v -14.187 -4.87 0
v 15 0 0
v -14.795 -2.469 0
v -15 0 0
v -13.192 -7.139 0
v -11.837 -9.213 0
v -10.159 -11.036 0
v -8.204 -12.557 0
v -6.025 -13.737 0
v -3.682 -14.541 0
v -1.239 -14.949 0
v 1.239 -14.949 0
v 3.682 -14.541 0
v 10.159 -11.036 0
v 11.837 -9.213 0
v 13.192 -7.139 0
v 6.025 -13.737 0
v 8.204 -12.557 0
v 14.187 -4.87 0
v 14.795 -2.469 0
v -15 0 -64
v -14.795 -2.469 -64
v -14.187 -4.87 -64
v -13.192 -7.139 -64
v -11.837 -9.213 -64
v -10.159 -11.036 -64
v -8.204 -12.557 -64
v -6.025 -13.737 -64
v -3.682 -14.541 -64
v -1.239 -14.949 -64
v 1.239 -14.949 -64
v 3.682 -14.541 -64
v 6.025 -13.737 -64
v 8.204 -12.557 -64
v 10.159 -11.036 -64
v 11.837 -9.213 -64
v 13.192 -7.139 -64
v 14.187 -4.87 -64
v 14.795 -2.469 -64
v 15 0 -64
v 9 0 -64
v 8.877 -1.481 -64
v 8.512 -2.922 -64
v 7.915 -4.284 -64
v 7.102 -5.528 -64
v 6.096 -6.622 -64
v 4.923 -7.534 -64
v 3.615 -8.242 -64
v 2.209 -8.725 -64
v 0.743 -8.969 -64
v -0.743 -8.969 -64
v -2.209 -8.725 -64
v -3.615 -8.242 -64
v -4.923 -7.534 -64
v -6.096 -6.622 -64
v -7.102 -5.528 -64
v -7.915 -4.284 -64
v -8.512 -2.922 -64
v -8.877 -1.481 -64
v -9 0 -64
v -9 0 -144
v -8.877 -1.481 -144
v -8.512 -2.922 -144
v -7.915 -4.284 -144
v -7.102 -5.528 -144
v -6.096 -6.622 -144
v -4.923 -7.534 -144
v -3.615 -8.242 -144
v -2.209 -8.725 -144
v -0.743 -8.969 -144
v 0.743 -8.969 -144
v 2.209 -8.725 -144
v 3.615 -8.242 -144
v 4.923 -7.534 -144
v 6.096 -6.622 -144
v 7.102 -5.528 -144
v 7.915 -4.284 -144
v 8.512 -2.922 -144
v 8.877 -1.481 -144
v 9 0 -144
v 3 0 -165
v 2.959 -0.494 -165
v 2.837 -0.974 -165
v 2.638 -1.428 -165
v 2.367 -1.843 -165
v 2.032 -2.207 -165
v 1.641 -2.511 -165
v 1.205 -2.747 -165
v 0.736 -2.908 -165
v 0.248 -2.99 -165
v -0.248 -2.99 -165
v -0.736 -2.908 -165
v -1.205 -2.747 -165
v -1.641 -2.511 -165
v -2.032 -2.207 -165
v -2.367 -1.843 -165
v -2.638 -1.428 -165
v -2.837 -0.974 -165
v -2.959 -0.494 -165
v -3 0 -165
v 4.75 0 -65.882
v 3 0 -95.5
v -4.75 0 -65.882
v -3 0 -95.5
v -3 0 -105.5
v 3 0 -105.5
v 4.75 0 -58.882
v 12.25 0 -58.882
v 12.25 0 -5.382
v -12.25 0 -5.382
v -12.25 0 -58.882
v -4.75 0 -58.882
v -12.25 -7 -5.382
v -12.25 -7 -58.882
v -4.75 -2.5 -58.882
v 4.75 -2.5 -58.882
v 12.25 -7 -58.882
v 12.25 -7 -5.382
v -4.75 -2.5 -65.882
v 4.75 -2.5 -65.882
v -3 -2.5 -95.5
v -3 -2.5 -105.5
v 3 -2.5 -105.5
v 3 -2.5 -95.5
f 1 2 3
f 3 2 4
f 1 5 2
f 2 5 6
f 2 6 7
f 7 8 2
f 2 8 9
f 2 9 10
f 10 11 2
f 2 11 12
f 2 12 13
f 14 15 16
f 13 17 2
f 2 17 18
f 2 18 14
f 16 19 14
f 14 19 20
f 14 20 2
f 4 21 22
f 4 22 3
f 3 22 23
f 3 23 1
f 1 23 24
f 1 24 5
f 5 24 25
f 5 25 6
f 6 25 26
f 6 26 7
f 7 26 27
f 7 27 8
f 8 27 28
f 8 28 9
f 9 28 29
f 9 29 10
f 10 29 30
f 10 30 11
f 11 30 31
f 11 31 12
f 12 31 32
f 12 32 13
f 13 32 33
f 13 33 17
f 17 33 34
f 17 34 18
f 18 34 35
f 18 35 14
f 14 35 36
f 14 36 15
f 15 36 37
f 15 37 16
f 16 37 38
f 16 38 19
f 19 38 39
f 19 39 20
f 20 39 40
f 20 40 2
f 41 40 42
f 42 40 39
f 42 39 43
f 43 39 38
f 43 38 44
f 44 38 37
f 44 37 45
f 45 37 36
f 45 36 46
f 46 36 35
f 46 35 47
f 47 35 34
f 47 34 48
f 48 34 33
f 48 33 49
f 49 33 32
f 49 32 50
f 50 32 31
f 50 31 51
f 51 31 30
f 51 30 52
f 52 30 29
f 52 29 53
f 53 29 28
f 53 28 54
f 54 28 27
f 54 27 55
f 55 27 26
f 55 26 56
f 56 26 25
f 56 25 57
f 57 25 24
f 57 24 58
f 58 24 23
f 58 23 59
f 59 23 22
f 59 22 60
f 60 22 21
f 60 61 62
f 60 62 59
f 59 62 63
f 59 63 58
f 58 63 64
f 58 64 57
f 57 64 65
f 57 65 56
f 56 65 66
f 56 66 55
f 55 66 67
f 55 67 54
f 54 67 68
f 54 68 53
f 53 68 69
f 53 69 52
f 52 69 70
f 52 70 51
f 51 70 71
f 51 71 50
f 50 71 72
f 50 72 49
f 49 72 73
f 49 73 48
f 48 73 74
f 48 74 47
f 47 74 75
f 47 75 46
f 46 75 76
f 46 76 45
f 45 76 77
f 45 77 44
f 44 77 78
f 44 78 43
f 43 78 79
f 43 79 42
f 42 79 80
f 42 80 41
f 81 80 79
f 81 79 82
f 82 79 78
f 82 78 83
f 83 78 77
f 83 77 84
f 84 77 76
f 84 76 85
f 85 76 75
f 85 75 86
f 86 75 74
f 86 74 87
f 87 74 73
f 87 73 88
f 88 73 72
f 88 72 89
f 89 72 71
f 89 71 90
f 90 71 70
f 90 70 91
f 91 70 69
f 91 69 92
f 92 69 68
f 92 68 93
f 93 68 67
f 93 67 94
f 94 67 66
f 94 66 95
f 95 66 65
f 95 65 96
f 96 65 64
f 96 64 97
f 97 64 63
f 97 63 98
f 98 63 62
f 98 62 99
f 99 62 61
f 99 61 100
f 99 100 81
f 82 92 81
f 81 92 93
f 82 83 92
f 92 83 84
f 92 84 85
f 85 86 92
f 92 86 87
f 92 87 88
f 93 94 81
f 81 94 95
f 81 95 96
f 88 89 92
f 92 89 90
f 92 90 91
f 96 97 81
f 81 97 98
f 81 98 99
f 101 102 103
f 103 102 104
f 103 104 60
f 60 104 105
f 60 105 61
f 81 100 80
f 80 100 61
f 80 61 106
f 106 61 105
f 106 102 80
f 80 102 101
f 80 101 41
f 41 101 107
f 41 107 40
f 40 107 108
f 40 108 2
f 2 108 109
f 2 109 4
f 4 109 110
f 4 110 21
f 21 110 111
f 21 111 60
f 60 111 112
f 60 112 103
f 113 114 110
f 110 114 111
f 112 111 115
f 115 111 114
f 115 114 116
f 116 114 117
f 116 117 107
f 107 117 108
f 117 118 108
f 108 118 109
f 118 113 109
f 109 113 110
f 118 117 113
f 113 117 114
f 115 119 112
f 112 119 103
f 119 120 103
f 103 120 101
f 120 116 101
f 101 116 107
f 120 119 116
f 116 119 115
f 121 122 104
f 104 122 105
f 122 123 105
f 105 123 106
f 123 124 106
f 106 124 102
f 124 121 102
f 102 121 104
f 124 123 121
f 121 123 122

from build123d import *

# Parameters (mm, degrees)
REVOLVE1_ANGLE     = 180
SKETCH3_W          = 24.5
SKETCH3_H          = 53.5
CUT_EXTRUDE1_DEPTH = 7
SKETCH4_W          = 9.5
SKETCH4_H          = 7
CUT_EXTRUDE2_DEPTH = 2.5
SKETCH5_W          = 6
SKETCH5_H          = 10
CUT_EXTRUDE3_DEPTH = 2.5


with BuildPart() as part:
    # Sketch2 → Revolve1 (revolve)
    with BuildSketch(Plane(origin=(0, 0, 0), x_dir=(1, 0, 0), z_dir=(0, 1, 0))):
        Polygon((0, 0), (-15, 0), (-15, 64), (-9, 64), (-9, 144), (-3, 165), (0, 165), align=None)
    revolve(axis=Axis((0, 0, -165), (0, 0, 1)), revolution_arc=REVOLVE1_ANGLE)

    # Sketch3 → Cut-Extrude1 (cut)
    with BuildSketch(Plane(origin=(0, 0, 0), x_dir=(1, 0, 0), z_dir=(0, 1, 0))):
        with Locations((0, 32.132467542)):
            Rectangle(SKETCH3_W, SKETCH3_H)
    extrude(amount=-CUT_EXTRUDE1_DEPTH, mode=Mode.SUBTRACT)

    # Sketch4 → Cut-Extrude2 (cut)
    with BuildSketch(Plane(origin=(0, 0, 0), x_dir=(1, 0, 0), z_dir=(0, 1, 0))):
        with Locations((0, 62.382467542)):
            Rectangle(SKETCH4_W, SKETCH4_H)
    extrude(amount=-CUT_EXTRUDE2_DEPTH, mode=Mode.SUBTRACT)

    # Sketch5 → Cut-Extrude3 (cut)
    with BuildSketch(Plane(origin=(0, 0, 0), x_dir=(1, 0, 0), z_dir=(0, 1, 0))):
        with Locations((0, 100.5)):
            Rectangle(SKETCH5_W, SKETCH5_H)
    extrude(amount=-CUT_EXTRUDE3_DEPTH, mode=Mode.SUBTRACT)


solid = part.part
